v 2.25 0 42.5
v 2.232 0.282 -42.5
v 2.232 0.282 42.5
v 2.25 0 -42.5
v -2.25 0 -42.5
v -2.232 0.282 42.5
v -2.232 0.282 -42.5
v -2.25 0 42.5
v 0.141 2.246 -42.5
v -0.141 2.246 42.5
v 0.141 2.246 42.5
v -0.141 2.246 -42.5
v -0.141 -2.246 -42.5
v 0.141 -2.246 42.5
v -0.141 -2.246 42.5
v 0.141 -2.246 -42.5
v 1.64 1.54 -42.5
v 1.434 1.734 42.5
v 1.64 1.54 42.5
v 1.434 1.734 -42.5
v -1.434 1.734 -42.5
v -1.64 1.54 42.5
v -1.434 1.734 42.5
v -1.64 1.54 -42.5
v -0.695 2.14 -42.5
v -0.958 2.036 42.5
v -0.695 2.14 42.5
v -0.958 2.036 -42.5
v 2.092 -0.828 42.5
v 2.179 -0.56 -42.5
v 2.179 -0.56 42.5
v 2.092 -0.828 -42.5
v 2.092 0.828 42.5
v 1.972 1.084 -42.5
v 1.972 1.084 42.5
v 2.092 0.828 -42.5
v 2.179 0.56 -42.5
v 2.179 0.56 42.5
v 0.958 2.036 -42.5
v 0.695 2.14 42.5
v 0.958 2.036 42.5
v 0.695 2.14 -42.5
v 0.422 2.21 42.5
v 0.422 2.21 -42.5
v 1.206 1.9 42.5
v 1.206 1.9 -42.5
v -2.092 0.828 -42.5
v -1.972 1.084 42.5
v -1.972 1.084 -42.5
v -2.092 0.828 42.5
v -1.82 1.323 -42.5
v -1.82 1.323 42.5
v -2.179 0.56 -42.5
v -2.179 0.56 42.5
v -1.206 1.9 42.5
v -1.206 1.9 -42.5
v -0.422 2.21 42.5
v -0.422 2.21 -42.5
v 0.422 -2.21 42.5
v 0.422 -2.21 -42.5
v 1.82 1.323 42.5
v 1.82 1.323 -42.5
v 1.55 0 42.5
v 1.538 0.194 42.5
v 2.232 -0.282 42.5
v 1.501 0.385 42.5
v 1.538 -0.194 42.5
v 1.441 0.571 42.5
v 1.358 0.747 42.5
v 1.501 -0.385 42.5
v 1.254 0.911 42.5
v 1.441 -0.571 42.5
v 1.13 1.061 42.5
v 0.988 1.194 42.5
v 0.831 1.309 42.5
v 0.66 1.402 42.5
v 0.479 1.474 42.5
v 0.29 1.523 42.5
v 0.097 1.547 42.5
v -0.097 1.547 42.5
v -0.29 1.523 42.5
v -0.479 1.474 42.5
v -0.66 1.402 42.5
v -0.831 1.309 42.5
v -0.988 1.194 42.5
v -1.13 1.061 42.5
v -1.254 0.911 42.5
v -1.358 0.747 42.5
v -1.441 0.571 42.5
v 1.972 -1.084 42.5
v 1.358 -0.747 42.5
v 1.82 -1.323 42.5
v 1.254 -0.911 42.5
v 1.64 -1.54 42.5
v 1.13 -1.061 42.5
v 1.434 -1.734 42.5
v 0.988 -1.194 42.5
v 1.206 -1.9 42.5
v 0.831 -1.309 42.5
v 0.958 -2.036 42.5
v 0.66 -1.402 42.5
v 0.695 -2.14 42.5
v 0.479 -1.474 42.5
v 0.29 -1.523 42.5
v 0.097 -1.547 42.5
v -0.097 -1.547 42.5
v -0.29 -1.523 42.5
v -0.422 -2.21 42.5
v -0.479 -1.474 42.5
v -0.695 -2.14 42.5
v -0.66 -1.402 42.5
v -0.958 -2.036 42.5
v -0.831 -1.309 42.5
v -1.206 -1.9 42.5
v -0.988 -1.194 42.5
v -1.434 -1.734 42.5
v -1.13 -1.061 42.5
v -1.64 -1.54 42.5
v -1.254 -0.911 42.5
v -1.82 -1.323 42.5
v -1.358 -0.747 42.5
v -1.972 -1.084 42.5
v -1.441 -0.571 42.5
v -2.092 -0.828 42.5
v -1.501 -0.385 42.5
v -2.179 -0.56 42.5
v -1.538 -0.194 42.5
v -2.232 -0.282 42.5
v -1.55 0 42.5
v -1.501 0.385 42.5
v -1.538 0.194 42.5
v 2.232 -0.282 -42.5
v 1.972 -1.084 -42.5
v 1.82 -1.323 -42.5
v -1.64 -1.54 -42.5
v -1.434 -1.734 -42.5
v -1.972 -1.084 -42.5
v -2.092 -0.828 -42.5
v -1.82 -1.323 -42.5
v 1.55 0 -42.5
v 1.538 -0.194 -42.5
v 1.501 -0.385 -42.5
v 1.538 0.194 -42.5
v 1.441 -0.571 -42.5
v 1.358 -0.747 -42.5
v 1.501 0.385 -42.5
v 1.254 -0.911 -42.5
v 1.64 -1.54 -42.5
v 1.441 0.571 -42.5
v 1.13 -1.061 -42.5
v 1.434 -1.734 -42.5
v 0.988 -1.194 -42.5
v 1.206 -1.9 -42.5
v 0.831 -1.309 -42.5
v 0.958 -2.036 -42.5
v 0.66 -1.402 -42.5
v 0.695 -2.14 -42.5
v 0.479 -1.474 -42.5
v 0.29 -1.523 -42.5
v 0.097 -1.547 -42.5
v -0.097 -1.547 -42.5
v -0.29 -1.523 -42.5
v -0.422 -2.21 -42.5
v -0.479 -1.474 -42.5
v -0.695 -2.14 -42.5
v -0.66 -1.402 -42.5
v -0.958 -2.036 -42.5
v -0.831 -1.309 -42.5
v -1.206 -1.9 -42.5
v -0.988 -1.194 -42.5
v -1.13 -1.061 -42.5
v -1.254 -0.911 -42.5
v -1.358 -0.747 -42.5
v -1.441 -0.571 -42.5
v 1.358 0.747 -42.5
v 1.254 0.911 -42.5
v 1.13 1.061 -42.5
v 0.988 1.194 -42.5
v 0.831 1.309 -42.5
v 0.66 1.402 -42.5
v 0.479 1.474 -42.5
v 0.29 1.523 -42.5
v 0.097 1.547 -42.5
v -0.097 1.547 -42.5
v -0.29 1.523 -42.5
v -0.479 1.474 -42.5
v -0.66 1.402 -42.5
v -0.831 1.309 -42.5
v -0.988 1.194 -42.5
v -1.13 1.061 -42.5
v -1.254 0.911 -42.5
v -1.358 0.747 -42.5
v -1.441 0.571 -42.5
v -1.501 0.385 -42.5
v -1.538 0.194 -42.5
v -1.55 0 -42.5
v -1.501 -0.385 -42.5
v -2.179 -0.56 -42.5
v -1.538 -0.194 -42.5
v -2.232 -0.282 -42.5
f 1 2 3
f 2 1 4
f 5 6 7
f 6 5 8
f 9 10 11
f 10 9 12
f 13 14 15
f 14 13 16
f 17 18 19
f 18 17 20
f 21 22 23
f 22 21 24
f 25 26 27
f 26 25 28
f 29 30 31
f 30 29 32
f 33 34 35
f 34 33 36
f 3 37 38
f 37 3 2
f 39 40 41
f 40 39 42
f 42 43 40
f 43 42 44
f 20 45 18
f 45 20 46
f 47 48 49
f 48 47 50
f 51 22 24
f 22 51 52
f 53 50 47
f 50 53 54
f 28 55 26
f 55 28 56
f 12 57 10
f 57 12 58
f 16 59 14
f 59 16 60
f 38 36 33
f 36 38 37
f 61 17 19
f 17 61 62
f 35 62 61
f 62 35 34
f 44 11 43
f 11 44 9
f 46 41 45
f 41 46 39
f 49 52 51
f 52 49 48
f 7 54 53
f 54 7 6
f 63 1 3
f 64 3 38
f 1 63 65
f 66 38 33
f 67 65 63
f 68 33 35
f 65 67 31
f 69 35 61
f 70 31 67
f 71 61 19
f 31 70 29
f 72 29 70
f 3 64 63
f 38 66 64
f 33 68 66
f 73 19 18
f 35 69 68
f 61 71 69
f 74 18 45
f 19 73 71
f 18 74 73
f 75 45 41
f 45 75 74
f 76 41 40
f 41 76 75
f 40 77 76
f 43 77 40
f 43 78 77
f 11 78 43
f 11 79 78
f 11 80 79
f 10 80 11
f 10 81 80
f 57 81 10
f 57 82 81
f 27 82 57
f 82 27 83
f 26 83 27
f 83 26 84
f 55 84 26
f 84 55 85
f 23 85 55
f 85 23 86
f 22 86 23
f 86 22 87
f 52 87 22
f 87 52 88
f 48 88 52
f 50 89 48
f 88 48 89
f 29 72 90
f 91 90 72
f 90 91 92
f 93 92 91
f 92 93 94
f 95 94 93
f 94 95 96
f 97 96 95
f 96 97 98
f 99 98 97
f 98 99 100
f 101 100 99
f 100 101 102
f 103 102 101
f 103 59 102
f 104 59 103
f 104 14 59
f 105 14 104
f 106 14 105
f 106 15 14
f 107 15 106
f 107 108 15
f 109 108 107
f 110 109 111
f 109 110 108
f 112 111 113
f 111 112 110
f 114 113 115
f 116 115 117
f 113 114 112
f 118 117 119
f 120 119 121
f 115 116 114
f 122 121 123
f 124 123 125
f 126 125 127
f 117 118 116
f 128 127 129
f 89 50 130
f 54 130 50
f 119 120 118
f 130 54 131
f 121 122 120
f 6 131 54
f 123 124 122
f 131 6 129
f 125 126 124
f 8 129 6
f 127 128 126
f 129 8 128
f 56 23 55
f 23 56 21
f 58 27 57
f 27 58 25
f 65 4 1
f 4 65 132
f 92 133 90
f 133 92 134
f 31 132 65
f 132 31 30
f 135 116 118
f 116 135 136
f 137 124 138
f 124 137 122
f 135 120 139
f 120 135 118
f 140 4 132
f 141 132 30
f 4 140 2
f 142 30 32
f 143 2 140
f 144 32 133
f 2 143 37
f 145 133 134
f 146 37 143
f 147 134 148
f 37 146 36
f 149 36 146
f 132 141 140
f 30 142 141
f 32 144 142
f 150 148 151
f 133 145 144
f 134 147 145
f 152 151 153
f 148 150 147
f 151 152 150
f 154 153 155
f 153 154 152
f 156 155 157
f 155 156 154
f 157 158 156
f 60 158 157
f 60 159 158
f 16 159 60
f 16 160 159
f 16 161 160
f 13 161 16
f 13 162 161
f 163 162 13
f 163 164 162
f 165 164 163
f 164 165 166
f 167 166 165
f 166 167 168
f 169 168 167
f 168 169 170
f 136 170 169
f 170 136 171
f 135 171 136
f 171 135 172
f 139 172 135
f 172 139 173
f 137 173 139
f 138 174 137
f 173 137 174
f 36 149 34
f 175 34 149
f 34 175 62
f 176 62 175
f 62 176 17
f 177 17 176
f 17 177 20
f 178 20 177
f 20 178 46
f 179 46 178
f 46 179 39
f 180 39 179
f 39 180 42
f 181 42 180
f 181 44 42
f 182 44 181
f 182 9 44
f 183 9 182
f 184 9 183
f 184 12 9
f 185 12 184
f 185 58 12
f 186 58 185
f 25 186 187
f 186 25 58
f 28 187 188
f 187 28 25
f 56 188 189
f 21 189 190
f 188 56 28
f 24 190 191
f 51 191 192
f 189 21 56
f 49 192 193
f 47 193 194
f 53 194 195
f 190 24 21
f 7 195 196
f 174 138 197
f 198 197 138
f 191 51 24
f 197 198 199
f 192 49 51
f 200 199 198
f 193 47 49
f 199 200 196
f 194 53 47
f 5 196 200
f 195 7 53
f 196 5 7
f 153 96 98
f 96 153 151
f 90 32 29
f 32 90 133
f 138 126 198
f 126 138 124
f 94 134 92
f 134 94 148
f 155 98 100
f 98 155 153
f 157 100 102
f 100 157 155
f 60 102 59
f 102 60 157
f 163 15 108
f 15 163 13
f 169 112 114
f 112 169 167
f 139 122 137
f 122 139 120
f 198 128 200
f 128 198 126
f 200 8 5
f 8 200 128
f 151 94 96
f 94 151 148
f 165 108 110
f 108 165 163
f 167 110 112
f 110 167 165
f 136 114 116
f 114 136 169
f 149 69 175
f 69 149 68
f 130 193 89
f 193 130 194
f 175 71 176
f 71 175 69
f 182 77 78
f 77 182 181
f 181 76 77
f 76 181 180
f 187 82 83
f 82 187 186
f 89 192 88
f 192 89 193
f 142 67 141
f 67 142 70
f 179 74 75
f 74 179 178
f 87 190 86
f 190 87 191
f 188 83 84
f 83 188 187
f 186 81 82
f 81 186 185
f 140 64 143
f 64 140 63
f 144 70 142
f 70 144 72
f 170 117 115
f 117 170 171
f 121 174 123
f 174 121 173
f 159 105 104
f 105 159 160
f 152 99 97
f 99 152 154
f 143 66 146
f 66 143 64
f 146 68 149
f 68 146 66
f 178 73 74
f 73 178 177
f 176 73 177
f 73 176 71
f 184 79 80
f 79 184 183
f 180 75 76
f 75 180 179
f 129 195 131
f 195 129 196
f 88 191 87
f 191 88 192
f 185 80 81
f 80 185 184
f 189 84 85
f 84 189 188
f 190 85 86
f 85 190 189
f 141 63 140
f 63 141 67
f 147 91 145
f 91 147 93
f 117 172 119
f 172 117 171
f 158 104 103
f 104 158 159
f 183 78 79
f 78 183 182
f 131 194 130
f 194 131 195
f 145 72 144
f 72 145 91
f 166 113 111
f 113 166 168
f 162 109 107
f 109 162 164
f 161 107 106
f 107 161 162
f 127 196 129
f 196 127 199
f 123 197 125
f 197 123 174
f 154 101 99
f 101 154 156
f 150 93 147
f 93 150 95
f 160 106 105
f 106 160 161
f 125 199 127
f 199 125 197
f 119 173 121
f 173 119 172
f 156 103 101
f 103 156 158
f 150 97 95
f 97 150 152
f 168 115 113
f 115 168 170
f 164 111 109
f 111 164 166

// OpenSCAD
$fn = 50;


difference() {
	union() {
		translate(v = [0, 0, -42.5000000000]) {
			cylinder(h = 85, r = 2.2500000000);
		}
	}
	union() {
		translate(v = [0, 0, -100.0000000000]) {
			cylinder(h = 200, r = 1.5500000000);
		}
	}
}
